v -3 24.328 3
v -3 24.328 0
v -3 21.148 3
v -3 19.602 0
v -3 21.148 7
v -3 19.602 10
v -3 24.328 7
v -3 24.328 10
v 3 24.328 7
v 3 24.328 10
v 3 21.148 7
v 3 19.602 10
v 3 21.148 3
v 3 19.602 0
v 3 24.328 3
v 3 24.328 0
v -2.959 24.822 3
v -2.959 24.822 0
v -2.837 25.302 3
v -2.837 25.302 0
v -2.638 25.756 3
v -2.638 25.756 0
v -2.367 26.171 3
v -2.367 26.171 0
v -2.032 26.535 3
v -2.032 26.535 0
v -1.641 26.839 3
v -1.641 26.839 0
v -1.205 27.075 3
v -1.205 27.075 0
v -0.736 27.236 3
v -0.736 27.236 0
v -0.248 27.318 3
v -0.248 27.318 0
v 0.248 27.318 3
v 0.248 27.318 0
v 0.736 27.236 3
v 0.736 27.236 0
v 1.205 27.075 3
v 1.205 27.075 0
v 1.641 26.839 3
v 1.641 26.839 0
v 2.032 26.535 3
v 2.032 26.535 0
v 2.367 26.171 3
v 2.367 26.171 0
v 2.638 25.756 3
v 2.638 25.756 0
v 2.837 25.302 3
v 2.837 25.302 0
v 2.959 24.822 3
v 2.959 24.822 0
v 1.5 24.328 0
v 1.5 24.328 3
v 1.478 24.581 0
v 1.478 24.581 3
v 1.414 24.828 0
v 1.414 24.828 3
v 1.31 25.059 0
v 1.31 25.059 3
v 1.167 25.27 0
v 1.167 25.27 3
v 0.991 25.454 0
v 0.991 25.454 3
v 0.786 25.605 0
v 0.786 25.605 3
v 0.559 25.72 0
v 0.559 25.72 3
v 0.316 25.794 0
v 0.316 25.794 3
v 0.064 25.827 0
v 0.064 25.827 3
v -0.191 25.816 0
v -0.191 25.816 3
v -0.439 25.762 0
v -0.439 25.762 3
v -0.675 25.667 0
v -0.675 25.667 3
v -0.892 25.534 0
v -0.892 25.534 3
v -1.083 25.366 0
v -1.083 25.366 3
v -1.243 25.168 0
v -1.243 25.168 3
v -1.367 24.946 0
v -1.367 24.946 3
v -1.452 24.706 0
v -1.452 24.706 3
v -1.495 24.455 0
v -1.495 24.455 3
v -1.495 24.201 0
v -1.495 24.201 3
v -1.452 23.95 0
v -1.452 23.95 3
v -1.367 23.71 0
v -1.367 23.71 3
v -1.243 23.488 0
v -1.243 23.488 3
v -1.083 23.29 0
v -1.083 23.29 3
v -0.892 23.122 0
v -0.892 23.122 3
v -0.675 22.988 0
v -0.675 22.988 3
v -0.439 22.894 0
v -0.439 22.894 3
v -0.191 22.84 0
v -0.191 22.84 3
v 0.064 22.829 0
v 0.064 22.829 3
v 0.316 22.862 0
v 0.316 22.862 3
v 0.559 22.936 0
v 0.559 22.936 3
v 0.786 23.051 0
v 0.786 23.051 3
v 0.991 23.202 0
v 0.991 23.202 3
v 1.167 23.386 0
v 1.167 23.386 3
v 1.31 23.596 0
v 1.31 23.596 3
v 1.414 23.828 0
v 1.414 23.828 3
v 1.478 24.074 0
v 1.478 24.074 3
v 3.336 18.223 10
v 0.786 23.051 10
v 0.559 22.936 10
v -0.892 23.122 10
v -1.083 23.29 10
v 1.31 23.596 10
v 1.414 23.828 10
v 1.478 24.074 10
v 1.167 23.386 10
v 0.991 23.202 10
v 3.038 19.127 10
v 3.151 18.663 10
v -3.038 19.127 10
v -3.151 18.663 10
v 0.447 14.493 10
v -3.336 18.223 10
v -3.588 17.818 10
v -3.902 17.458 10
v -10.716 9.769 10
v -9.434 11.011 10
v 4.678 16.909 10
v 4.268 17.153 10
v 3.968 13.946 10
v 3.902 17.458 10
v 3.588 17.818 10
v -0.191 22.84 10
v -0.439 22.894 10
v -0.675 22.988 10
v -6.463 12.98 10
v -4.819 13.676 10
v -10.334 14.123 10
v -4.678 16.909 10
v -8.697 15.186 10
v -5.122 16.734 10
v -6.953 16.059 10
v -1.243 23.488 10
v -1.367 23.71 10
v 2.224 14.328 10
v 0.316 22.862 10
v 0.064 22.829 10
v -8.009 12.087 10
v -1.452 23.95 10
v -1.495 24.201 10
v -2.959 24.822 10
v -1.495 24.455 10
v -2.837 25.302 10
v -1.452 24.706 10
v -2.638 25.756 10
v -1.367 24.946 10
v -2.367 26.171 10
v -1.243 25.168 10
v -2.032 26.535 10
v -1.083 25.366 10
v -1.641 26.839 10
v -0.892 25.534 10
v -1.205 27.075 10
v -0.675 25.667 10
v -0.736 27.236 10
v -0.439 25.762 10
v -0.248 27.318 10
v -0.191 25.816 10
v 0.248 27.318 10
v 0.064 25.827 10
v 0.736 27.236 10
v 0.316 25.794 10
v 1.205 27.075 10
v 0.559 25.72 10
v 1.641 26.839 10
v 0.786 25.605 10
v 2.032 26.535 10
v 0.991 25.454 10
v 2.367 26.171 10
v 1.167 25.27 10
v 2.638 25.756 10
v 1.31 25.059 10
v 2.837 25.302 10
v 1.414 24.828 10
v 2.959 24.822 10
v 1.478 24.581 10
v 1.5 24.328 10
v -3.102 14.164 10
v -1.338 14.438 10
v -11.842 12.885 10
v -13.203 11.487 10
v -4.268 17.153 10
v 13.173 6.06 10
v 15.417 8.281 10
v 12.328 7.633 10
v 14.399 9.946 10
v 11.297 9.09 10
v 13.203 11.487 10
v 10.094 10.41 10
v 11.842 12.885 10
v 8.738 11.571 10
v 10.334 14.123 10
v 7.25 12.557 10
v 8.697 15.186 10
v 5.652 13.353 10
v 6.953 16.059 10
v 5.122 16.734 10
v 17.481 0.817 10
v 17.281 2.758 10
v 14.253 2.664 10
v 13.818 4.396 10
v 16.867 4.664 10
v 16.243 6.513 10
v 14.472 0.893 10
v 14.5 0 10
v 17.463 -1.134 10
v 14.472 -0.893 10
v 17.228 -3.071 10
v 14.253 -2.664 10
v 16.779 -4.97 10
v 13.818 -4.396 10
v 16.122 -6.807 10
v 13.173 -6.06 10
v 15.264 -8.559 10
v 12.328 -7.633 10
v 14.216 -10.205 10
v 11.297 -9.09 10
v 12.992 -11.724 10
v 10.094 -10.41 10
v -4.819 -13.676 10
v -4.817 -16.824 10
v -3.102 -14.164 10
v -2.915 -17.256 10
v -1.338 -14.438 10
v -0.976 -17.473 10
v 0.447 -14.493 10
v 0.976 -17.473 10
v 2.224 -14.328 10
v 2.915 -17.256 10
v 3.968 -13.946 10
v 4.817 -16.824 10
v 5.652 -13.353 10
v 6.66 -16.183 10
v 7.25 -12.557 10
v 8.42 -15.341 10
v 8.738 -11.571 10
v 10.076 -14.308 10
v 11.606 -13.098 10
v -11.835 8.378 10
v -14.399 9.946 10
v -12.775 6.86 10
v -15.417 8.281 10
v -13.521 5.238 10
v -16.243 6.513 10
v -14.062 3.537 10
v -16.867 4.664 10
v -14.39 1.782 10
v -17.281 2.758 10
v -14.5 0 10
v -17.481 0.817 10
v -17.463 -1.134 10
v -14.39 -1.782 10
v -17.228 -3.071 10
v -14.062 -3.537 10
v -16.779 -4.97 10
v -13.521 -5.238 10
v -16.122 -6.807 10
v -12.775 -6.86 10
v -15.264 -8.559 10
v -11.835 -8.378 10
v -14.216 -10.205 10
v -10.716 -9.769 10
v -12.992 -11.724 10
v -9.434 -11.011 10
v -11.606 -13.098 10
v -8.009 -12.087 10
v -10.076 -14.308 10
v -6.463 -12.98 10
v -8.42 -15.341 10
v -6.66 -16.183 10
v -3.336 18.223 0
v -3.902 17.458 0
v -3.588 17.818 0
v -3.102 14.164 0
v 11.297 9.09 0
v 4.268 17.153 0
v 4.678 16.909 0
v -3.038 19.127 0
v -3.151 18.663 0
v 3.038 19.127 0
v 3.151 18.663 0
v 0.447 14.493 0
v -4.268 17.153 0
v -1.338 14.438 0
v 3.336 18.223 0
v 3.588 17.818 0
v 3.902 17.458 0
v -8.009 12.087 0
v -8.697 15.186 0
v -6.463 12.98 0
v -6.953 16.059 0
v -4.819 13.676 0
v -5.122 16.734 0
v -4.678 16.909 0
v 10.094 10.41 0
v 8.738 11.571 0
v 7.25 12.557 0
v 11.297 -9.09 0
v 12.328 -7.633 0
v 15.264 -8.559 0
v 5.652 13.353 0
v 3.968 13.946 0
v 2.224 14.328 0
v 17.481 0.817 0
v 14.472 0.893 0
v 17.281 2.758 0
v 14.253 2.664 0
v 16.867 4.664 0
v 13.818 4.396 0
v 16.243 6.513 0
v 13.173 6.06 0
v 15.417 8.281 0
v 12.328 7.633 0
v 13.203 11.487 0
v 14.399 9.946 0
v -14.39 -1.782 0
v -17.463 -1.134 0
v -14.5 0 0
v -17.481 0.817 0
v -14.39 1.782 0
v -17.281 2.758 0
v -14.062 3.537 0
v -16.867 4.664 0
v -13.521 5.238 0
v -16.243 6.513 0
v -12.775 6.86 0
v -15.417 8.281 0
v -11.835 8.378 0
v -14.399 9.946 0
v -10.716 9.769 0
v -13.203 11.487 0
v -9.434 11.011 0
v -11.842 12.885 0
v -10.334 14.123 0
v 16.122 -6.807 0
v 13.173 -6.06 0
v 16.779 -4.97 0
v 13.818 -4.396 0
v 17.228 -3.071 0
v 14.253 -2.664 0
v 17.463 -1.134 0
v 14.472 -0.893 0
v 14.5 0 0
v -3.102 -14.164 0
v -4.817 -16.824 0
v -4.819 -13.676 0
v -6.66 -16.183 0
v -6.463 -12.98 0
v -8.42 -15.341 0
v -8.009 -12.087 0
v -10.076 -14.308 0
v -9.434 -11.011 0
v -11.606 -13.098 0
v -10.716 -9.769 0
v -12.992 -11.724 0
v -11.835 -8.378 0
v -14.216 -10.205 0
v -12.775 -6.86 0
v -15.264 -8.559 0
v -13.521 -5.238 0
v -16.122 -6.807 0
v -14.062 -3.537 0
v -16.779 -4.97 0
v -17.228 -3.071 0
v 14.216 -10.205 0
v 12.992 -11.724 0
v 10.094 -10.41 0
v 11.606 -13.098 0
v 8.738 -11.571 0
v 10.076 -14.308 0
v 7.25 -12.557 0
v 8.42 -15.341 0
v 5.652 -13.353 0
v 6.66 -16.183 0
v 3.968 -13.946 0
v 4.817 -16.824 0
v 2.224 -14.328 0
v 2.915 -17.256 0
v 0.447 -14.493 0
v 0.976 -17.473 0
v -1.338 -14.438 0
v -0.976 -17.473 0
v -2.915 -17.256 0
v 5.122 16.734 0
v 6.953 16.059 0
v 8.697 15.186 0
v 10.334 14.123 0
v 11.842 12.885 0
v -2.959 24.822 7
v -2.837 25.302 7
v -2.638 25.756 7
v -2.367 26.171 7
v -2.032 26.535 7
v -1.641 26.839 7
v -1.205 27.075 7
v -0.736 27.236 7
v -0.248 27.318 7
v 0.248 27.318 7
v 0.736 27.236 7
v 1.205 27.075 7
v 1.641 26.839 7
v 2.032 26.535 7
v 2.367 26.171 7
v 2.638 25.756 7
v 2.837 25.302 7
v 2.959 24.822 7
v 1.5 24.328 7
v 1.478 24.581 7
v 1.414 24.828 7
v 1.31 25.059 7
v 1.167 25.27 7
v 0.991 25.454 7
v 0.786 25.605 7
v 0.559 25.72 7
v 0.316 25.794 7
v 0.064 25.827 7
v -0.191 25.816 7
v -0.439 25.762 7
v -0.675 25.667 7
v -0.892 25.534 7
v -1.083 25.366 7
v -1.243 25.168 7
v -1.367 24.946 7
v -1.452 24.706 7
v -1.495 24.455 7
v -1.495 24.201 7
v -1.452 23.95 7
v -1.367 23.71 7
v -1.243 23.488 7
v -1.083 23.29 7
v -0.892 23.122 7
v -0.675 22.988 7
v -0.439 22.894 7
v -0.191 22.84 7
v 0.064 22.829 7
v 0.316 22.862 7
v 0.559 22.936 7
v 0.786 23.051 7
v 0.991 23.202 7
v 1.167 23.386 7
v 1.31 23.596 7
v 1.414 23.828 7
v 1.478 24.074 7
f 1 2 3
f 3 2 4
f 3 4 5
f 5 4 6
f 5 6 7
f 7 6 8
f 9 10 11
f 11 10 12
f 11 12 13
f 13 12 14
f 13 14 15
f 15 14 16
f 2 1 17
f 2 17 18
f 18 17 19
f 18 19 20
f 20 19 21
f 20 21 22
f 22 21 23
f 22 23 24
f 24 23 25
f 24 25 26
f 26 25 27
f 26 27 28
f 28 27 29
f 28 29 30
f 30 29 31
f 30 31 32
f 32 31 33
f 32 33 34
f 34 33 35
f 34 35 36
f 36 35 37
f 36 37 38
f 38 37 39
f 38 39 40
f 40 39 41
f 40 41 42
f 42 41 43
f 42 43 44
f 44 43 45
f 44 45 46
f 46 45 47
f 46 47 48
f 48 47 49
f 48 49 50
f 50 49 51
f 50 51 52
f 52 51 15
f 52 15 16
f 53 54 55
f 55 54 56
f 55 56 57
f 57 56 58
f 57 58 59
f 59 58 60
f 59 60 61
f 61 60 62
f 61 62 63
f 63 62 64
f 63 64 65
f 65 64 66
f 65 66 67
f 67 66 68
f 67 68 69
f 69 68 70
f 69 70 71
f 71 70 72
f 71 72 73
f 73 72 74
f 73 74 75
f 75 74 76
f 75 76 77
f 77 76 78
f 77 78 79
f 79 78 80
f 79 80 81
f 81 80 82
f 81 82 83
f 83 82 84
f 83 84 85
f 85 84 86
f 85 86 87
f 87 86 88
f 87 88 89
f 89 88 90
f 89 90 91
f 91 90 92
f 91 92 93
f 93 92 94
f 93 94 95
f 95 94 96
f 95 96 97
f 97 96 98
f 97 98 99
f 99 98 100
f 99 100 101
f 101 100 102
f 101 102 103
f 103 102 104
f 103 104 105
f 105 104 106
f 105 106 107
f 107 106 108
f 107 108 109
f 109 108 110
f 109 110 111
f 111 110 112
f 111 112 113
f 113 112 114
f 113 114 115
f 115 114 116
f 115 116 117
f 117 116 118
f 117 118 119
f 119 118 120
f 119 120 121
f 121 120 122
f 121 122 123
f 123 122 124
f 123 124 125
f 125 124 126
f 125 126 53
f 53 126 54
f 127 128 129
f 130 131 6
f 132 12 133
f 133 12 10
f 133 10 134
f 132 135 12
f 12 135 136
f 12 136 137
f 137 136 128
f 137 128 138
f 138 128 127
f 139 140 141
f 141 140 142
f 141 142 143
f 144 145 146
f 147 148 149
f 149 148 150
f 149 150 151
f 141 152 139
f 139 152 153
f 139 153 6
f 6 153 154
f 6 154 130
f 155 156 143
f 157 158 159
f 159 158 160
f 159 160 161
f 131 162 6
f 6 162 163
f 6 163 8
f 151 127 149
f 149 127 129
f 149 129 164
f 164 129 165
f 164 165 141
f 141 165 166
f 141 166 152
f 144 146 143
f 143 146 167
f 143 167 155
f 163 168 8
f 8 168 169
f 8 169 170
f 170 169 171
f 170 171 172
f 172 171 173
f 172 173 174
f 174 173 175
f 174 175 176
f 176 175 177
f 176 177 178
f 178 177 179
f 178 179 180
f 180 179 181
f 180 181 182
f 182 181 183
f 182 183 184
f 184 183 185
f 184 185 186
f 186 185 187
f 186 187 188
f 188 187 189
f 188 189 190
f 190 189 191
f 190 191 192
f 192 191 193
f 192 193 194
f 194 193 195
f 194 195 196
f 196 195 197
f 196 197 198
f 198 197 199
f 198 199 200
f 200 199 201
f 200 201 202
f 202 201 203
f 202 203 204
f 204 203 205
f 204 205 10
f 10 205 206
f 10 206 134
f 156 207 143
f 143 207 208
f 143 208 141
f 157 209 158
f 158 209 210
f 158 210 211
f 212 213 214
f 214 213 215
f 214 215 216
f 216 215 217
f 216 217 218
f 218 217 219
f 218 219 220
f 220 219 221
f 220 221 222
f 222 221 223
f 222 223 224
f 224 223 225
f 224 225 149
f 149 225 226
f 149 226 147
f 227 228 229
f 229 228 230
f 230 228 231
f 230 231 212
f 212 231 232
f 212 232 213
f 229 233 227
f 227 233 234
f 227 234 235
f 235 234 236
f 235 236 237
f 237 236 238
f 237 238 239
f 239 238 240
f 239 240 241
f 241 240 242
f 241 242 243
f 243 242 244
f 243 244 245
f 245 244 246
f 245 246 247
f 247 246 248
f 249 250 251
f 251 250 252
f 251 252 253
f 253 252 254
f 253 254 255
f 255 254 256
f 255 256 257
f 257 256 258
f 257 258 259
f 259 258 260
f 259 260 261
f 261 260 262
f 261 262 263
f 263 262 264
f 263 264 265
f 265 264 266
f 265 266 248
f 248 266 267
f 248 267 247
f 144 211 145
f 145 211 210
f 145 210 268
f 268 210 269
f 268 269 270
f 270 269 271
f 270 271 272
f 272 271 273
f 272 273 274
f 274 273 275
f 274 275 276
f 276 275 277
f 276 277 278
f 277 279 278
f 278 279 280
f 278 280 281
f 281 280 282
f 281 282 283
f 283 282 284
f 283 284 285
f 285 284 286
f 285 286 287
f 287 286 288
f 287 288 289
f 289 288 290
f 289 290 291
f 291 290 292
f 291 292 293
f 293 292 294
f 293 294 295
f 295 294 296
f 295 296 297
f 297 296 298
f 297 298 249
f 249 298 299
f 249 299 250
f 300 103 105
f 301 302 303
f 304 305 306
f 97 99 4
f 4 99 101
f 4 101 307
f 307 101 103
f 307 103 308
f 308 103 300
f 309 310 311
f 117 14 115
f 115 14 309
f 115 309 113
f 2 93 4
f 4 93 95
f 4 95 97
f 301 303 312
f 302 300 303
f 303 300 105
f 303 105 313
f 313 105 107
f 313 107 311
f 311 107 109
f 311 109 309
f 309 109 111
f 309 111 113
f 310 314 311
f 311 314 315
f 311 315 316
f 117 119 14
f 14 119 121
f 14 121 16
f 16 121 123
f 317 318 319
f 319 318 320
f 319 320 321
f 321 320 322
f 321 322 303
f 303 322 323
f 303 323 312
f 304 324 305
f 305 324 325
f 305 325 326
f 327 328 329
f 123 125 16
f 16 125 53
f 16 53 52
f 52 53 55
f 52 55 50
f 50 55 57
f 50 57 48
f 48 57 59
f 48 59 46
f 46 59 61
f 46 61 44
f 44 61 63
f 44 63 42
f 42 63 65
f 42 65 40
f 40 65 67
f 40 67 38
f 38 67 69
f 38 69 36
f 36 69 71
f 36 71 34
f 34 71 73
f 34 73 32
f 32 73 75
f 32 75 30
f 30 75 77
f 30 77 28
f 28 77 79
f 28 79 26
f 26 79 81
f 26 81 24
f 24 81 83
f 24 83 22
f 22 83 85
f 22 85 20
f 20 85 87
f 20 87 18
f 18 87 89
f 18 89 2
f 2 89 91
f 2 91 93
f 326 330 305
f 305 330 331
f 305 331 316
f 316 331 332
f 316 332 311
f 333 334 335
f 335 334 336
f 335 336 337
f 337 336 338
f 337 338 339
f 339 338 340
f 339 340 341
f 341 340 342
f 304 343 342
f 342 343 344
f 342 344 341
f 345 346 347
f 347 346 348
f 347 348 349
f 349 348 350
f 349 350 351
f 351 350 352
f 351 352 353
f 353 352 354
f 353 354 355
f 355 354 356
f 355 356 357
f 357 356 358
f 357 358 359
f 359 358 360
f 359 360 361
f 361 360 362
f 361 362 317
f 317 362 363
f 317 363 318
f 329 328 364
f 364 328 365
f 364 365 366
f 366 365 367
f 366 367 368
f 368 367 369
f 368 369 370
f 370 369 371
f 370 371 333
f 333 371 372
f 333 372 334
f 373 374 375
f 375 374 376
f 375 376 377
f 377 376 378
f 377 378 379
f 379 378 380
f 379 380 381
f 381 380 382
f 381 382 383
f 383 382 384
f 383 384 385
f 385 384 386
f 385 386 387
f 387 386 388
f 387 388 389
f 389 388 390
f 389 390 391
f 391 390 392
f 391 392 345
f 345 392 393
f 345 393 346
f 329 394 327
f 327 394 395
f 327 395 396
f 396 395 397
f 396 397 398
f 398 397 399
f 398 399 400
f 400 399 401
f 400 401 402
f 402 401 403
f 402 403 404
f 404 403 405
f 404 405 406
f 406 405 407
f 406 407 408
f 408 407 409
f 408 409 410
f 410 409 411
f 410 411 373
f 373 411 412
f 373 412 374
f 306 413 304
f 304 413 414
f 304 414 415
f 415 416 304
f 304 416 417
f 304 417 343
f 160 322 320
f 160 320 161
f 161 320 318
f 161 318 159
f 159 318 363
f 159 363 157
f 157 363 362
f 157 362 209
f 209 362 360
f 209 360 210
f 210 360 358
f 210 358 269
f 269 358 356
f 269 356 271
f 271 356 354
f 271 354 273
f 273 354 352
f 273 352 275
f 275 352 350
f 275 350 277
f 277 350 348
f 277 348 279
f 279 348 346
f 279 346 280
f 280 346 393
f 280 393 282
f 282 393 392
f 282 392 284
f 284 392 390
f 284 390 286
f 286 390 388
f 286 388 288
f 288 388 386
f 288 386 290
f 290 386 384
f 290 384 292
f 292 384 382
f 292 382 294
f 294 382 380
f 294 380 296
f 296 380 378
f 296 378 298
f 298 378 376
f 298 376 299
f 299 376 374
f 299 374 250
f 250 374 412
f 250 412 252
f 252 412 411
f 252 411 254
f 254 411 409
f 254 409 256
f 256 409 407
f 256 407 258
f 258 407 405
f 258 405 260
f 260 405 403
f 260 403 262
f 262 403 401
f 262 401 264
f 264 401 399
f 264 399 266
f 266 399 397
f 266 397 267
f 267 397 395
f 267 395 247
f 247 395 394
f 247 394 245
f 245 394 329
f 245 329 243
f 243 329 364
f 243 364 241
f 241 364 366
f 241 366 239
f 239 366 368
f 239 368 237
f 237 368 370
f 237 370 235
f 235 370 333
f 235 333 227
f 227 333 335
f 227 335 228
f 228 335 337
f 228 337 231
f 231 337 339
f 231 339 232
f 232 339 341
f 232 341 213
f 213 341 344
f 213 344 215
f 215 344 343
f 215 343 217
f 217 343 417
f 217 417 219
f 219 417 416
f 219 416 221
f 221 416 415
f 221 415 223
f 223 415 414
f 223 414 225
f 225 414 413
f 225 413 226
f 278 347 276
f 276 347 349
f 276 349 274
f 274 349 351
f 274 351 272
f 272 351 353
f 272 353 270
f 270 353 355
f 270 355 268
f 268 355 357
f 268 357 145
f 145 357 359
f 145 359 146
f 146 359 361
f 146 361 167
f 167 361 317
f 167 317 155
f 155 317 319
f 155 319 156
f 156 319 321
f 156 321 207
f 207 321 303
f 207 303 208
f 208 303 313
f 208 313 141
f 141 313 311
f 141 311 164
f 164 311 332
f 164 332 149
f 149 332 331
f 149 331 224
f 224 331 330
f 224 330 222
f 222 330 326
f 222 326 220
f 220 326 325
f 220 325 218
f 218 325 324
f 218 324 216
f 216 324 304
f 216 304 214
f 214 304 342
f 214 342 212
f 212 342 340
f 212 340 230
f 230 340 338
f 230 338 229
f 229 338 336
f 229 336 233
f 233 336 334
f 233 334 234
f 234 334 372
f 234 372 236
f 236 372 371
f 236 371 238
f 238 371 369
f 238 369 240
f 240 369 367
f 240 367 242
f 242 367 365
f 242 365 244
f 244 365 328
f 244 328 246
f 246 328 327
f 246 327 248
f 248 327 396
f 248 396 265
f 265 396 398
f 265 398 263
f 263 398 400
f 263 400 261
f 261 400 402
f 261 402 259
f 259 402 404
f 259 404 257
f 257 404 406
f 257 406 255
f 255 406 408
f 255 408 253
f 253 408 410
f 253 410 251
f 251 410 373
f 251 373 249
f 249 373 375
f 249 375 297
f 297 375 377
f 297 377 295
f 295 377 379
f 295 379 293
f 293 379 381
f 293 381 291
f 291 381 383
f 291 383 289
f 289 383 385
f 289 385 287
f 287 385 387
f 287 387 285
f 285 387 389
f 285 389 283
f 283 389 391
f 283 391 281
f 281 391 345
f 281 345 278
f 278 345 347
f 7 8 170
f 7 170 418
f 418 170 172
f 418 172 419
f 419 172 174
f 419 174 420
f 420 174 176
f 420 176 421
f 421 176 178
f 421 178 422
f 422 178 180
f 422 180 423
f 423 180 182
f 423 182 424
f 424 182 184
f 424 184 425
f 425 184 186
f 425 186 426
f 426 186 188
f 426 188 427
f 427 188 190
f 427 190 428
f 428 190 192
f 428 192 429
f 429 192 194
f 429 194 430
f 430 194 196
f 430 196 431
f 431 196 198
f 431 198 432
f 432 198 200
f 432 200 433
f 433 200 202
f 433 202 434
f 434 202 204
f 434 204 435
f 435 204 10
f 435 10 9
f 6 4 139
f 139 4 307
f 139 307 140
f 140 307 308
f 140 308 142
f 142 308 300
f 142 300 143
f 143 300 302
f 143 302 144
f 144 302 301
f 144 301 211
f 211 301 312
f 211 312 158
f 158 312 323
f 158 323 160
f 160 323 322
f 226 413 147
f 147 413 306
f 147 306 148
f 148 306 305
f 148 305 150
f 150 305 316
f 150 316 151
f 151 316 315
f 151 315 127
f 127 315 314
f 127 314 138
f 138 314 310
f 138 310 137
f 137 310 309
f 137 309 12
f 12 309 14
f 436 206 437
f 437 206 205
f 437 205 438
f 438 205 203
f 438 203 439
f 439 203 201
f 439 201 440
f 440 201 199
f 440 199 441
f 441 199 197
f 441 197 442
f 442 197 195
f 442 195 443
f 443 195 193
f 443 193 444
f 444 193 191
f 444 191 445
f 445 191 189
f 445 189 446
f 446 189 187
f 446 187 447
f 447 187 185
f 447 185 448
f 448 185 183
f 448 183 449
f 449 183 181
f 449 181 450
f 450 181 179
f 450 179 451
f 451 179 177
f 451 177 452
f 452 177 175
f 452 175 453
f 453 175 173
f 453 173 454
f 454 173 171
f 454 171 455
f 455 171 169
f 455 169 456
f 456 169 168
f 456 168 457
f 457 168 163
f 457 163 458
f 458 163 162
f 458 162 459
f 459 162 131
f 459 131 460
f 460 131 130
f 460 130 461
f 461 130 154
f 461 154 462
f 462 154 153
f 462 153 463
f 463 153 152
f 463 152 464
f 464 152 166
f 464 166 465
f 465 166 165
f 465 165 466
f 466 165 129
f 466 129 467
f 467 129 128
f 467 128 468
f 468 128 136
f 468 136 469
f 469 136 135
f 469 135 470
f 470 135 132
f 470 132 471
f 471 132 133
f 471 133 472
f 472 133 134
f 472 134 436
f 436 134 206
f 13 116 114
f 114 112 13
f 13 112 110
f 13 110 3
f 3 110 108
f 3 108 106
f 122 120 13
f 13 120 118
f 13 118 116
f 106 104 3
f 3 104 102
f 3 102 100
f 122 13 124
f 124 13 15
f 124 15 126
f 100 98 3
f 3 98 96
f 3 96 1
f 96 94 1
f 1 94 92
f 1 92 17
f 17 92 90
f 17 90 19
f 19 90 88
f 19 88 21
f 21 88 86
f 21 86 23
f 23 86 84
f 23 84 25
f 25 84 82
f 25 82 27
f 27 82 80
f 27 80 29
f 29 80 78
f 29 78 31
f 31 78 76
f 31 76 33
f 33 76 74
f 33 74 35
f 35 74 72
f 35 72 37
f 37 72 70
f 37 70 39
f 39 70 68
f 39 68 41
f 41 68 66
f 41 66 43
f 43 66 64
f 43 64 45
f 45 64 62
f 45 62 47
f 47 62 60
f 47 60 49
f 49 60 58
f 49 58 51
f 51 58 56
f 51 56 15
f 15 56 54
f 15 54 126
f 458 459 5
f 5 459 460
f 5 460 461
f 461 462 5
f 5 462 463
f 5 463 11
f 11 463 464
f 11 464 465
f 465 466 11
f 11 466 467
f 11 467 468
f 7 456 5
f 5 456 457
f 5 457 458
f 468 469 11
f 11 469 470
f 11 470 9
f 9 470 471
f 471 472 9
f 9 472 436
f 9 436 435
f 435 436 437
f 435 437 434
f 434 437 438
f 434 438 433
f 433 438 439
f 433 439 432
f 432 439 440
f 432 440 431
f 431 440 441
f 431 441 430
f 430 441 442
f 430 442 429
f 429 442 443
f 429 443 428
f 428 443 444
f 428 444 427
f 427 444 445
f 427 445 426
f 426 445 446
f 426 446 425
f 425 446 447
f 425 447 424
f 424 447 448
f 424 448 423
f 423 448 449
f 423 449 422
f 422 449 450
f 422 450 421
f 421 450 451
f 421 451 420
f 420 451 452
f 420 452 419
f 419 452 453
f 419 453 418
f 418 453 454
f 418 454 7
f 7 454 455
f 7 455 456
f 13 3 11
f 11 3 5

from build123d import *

# Parameters (mm, degrees)
SKETCH1_R           = 17.5
SKETCH1_R_2         = 14.5
BOSS_EXTRUDE1_DEPTH = 10
BOSS_EXTRUDE2_DEPTH = 10
SKETCH5_R           = 3
BOSS_EXTRUDE3_DEPTH = 10
FILLET1_R           = 3
SKETCH6_R           = 1.5
CUT_EXTRUDE1_DEPTH  = 10
CUT_EXTRUDE2_DEPTH  = 4


with BuildPart() as part:
    # Sketch1 → Boss-Extrude1 (new body)
    with BuildSketch(Plane.XY):
        Circle(SKETCH1_R)
        Circle(SKETCH1_R_2, mode=Mode.SUBTRACT)
    extrude(amount=BOSS_EXTRUDE1_DEPTH)

    # Sketch4 → Boss-Extrude2 (add)
    with BuildSketch(Plane.XY.offset(10)):
        Polygon((-3, 19.250821316), (-3, 16.430441273), (3, 16.430441273), (3, 19.250821316), (3, 24.327875781), (-3, 24.327875781), align=None)
    extrude(amount=-BOSS_EXTRUDE2_DEPTH)

    # Sketch5 → Boss-Extrude3 (add)
    with BuildSketch(Plane.XY.offset(10)):
        with Locations((0, 24.327875781)):
            Circle(SKETCH5_R)
    extrude(amount=-BOSS_EXTRUDE3_DEPTH)

    # Fillet1
    fillet1_edges = [part.edges().sort_by_distance(p)[0] for p in [
        (3, 17.24093965, 5),
        (-3, 17.24093965, 5),
    ]]
    fillet(fillet1_edges, radius=FILLET1_R)

    # Sketch6 → Cut-Extrude1 (cut)
    with BuildSketch(Plane.XY.offset(10)):
        with Locations((0, 24.327875781)):
            Circle(SKETCH6_R)
    extrude(amount=-CUT_EXTRUDE1_DEPTH, mode=Mode.SUBTRACT)

    # Sketch7 → Cut-Extrude2 (cut)
    with BuildSketch(Plane.XY.offset(7)):
        Polygon((-6, 21.148402448), (3.429094676, 21.148402448), (5.067314065, 21.148402448), (5.31985813, 21.327875781), (5.31985813, 28.263680706), (-6, 28.263680706), align=None)
    extrude(amount=-CUT_EXTRUDE2_DEPTH, mode=Mode.SUBTRACT)


solid = part.part
